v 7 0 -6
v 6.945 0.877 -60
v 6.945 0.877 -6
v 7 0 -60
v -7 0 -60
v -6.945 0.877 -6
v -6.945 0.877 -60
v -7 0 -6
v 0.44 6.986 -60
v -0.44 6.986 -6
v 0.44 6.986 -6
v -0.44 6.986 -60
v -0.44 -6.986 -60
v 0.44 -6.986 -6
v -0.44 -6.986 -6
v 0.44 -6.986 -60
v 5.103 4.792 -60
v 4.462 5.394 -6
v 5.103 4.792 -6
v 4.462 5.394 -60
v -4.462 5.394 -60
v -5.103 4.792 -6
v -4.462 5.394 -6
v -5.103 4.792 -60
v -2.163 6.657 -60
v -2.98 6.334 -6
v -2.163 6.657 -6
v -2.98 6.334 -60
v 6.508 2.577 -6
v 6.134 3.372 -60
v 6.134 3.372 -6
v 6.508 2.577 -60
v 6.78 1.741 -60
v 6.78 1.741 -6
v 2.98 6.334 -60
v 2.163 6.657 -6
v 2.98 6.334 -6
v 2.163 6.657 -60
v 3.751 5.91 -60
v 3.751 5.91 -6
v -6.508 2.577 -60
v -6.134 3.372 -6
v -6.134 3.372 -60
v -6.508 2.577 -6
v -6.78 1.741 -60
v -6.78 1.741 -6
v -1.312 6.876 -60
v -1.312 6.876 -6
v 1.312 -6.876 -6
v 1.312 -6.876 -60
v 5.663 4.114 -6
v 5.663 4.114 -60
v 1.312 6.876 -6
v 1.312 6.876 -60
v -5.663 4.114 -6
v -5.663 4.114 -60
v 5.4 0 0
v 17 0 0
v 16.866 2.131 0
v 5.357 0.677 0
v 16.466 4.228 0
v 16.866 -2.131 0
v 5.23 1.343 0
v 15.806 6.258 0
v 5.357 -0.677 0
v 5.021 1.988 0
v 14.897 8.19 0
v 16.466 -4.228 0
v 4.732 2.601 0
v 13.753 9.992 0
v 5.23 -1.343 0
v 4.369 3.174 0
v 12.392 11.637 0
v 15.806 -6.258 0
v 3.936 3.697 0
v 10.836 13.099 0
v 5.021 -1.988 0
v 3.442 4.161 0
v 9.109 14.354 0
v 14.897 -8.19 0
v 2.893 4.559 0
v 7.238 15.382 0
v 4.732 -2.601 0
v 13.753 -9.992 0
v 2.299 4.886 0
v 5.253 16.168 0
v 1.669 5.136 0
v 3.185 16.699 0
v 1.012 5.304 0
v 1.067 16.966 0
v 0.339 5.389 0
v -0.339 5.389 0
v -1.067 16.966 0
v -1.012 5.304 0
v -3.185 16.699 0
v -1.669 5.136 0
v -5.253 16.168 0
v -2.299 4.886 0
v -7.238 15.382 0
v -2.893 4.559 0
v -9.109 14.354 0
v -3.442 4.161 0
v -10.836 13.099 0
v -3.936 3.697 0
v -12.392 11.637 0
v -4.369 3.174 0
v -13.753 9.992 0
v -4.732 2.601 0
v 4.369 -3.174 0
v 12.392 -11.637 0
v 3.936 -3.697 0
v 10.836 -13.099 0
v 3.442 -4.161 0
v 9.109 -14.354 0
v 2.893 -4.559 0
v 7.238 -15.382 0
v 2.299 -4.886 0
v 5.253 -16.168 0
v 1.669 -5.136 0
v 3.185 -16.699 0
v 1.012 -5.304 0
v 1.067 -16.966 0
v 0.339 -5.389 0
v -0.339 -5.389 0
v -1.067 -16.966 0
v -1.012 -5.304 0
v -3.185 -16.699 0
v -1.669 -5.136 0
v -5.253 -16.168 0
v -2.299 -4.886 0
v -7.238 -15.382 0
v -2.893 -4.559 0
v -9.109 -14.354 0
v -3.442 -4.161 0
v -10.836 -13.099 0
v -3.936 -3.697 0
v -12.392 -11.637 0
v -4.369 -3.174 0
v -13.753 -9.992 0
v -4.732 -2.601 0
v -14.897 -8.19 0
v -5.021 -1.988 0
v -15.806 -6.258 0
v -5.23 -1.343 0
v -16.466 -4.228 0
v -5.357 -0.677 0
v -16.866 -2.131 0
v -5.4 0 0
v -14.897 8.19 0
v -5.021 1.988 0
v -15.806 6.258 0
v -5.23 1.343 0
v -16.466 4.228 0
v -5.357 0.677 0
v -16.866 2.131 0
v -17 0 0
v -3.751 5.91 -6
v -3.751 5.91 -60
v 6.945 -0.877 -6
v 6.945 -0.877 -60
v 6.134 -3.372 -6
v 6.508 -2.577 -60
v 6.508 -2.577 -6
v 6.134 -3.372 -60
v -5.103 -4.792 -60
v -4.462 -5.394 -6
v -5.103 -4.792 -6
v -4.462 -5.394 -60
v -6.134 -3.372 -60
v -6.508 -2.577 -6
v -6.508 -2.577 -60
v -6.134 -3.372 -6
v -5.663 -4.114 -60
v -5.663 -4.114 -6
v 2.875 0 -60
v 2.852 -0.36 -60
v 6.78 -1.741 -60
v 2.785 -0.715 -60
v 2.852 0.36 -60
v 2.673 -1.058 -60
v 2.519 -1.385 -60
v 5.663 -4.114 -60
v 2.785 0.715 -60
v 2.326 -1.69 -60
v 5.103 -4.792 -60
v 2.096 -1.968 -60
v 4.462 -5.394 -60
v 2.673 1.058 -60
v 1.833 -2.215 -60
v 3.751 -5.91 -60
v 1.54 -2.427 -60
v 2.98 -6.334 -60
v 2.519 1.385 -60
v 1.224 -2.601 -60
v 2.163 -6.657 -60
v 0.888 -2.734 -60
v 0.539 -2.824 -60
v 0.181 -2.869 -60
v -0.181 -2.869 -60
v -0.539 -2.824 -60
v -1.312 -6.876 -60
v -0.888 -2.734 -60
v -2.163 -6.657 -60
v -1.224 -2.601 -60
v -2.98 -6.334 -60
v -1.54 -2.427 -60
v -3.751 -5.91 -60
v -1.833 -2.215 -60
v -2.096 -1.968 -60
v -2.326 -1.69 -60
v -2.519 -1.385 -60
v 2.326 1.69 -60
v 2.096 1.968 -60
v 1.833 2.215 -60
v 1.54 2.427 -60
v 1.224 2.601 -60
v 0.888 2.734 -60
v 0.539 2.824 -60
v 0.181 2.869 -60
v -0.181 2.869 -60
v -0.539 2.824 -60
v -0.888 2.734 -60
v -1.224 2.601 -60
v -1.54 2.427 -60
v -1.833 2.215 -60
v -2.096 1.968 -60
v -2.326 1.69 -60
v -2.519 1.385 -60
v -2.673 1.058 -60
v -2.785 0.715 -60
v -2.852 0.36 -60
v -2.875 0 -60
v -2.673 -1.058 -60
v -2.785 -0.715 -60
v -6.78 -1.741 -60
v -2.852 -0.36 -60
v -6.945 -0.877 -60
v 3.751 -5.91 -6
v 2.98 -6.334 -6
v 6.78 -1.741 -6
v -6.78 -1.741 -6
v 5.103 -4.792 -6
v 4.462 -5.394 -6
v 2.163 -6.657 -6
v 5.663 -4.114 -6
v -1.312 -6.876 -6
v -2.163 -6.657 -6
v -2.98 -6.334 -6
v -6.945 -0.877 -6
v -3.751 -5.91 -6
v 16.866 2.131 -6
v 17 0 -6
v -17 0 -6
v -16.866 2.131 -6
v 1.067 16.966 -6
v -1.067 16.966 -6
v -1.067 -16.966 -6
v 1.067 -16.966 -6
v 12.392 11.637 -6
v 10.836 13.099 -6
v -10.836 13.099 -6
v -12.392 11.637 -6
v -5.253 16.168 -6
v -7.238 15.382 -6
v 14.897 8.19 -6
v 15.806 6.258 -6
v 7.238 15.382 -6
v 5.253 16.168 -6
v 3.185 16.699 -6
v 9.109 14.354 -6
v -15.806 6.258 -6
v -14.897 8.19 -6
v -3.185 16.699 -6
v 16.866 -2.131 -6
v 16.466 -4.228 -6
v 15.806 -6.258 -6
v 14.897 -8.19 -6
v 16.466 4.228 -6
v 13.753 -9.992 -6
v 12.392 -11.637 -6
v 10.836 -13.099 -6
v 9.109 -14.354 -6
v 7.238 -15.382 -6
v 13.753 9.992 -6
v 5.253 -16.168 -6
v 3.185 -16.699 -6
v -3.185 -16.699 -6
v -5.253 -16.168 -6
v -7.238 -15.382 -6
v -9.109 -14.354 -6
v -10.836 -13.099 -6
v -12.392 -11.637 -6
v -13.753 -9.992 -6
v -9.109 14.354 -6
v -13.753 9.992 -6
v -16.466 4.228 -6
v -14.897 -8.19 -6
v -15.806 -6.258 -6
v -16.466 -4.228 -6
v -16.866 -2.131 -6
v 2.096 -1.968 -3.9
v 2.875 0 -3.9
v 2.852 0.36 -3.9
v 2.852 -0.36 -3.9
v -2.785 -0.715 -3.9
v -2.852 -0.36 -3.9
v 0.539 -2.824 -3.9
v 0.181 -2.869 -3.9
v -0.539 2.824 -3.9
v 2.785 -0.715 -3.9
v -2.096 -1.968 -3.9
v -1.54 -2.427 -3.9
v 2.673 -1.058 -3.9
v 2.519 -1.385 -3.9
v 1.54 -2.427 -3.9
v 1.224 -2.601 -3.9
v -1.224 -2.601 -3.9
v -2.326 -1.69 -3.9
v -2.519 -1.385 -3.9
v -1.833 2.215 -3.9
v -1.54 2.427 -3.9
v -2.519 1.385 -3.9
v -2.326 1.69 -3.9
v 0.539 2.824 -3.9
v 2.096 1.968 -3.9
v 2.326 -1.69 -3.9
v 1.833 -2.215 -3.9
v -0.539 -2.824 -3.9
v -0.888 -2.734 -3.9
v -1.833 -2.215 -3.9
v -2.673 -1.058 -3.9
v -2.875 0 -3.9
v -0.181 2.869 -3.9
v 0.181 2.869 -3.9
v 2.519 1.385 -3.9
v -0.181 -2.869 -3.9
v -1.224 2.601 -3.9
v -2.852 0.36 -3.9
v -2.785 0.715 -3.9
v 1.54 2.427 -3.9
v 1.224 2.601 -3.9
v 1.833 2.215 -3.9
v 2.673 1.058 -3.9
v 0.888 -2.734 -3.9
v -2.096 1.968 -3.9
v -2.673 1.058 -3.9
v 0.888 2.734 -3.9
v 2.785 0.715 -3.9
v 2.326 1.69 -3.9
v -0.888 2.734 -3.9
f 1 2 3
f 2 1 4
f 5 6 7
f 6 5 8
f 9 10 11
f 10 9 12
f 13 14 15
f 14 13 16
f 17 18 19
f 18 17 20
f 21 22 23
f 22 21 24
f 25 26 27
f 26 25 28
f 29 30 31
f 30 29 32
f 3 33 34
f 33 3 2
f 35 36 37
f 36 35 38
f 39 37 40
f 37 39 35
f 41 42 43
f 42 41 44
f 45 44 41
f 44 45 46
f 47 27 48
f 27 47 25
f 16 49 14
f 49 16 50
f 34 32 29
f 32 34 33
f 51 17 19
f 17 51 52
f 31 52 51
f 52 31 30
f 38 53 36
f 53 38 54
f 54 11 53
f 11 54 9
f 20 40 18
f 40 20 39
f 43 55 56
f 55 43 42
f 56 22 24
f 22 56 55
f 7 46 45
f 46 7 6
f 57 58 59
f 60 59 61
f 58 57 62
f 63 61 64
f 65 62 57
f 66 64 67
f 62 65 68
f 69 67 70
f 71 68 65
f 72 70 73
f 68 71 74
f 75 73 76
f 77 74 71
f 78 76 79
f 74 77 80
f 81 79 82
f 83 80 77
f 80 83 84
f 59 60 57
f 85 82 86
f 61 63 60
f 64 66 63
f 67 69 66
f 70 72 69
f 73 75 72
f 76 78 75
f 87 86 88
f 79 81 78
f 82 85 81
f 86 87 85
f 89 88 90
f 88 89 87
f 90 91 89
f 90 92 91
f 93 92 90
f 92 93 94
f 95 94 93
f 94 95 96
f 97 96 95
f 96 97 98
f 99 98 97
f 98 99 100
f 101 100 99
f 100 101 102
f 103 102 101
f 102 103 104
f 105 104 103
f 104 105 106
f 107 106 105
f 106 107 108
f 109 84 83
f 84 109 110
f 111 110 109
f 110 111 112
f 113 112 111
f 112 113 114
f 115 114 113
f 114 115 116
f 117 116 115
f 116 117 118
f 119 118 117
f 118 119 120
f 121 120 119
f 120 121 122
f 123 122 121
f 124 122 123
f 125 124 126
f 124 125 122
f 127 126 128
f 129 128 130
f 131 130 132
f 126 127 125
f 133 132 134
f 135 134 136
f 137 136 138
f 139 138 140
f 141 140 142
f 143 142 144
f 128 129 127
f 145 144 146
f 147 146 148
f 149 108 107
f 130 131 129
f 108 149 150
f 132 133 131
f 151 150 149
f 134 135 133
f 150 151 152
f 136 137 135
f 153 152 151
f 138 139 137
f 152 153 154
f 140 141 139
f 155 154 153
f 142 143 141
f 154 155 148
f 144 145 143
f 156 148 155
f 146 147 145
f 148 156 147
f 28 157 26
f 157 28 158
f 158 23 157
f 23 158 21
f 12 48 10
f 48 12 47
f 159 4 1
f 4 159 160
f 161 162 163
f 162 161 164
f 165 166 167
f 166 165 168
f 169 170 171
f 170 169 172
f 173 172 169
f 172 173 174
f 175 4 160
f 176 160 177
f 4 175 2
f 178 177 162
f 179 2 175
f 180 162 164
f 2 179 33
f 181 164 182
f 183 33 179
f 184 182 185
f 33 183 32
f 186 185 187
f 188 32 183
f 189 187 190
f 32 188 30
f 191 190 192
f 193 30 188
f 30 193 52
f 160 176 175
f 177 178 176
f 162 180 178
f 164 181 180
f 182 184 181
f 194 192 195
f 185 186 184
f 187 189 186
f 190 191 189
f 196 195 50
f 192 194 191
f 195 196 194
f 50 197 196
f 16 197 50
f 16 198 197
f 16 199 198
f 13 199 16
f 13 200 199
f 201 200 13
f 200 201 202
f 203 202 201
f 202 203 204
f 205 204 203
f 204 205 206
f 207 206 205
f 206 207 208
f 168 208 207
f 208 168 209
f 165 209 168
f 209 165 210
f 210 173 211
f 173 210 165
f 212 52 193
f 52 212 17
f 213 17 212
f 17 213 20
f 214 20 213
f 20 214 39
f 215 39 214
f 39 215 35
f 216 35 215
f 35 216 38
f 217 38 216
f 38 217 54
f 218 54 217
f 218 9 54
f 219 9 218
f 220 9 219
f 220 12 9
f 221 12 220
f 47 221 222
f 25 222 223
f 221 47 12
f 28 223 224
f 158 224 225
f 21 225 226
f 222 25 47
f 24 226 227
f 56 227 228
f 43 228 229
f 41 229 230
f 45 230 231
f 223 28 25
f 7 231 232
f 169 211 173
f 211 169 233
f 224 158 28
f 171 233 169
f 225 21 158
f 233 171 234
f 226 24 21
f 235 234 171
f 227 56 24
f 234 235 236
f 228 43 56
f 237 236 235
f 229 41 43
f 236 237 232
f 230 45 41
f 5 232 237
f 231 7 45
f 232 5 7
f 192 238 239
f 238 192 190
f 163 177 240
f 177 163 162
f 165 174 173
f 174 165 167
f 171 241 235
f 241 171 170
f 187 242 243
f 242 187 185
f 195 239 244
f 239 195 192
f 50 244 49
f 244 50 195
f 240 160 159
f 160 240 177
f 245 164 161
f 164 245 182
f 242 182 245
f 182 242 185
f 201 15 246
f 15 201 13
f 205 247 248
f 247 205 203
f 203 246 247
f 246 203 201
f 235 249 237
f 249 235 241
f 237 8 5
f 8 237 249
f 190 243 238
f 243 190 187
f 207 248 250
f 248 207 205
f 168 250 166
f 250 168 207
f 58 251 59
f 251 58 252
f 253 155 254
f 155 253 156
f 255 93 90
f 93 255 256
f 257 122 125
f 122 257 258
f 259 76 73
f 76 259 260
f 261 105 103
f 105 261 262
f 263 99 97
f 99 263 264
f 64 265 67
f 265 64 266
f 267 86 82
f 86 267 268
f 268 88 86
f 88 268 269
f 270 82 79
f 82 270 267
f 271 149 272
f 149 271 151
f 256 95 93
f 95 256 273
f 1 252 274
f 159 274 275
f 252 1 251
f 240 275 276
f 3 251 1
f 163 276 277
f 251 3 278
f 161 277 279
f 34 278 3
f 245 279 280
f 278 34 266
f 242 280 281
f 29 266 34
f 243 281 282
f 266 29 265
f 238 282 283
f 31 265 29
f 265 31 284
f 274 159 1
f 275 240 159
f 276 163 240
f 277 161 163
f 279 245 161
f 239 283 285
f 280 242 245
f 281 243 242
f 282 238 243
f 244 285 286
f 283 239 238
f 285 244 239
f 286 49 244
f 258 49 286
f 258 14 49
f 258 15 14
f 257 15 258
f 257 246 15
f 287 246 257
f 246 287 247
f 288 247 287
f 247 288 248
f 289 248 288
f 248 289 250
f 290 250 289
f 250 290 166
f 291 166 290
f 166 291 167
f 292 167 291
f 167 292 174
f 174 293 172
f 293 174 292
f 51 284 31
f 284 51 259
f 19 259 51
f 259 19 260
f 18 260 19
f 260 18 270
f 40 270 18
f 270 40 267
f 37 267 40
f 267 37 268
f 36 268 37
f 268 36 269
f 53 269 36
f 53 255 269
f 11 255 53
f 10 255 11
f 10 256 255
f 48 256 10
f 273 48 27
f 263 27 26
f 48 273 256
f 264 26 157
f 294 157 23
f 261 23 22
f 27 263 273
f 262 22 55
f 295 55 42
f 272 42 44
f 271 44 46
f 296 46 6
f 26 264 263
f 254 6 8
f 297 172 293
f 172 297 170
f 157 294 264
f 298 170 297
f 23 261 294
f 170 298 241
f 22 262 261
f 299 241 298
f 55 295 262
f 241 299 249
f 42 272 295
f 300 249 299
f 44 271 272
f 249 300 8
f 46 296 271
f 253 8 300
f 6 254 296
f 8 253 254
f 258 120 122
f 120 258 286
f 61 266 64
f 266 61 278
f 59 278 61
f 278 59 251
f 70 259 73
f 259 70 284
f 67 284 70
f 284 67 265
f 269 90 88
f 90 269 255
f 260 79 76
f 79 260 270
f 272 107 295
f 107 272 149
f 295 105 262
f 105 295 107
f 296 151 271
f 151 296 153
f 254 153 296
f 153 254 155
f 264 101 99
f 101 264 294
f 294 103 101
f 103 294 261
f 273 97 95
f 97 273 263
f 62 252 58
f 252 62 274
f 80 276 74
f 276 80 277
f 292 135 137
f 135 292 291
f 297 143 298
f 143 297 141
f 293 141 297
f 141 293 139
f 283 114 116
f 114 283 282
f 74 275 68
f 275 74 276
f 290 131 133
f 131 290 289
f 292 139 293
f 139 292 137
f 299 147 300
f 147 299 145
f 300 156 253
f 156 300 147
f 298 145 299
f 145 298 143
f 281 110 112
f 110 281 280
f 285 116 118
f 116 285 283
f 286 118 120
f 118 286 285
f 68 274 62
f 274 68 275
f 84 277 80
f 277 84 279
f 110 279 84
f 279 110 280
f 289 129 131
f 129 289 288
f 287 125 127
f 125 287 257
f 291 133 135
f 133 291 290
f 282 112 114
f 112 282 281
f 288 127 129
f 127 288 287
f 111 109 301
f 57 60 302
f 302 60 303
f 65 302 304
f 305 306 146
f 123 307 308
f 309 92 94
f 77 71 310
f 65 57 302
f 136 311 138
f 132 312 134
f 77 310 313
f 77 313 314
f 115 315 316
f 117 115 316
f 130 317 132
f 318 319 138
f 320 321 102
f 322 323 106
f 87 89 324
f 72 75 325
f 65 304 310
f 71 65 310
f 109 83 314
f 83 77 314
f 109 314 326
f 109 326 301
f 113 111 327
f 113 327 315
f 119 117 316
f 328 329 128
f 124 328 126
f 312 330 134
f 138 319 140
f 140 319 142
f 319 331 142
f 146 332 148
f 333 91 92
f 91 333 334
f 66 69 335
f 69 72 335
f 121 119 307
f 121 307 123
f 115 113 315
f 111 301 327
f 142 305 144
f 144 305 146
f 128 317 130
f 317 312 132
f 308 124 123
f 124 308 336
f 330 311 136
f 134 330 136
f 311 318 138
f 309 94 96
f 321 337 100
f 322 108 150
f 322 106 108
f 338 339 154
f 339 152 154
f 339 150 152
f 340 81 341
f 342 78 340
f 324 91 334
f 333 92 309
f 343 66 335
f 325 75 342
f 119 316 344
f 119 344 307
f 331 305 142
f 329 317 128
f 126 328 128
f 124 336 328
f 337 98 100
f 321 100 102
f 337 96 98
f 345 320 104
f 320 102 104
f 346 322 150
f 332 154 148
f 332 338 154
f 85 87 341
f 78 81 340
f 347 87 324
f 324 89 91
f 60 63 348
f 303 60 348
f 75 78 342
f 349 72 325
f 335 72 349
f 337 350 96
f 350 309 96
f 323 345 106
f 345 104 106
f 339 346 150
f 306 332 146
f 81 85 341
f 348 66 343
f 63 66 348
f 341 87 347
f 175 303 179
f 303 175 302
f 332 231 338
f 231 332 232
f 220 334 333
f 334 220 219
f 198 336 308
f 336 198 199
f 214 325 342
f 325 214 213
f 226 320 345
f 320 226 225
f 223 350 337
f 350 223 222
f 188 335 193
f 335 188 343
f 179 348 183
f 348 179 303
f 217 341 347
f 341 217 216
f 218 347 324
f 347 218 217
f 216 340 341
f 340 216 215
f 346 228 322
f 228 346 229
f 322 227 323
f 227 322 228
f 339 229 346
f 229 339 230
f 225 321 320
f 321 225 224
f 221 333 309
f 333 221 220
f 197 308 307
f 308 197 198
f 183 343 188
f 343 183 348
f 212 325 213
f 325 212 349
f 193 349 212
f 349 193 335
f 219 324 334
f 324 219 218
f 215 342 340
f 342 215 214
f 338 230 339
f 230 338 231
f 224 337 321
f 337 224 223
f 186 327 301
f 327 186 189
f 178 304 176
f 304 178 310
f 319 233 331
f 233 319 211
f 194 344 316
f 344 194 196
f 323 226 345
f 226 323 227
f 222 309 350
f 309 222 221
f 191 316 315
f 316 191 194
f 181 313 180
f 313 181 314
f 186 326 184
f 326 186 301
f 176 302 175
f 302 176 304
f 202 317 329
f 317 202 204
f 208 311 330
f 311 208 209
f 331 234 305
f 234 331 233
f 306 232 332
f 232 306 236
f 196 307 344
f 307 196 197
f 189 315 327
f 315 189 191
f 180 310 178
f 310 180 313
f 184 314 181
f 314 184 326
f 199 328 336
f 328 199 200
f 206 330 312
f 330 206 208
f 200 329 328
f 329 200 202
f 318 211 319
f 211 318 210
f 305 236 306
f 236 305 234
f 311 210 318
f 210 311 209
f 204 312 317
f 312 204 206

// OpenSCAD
$fn = 50;


difference() {
	union() {
		translate(v = [0, 0, -60.0000000000]) {
			cylinder(h = 60, r = 7.0000000000);
		}
		translate(v = [0, 0, -6.0000000000]) {
			cylinder(h = 6, r = 17.0000000000);
		}
	}
	union() {
		translate(v = [0, 0, 0]) {
			rotate(a = [0, 0, 0]) {
				difference() {
					union() {
						#translate(v = [0, 0, -60.0000000000]) {
							cylinder(h = 60, r = 2.6000000000);
						}
						#translate(v = [0, 0, -3.9000000000]) {
							cylinder(h = 3.9000000000, r = 7.0000000000, r1 = 2.8750000000, r2 = 5.4000000000);
						}
						#translate(v = [0, 0, -60.0000000000]) {
							cylinder(h = 60, r = 2.8750000000);
						}
						#translate(v = [0, 0, -60.0000000000]) {
							cylinder(h = 60, r = 2.6000000000);
						}
					}
					union();
				}
			}
		}
	}
}
